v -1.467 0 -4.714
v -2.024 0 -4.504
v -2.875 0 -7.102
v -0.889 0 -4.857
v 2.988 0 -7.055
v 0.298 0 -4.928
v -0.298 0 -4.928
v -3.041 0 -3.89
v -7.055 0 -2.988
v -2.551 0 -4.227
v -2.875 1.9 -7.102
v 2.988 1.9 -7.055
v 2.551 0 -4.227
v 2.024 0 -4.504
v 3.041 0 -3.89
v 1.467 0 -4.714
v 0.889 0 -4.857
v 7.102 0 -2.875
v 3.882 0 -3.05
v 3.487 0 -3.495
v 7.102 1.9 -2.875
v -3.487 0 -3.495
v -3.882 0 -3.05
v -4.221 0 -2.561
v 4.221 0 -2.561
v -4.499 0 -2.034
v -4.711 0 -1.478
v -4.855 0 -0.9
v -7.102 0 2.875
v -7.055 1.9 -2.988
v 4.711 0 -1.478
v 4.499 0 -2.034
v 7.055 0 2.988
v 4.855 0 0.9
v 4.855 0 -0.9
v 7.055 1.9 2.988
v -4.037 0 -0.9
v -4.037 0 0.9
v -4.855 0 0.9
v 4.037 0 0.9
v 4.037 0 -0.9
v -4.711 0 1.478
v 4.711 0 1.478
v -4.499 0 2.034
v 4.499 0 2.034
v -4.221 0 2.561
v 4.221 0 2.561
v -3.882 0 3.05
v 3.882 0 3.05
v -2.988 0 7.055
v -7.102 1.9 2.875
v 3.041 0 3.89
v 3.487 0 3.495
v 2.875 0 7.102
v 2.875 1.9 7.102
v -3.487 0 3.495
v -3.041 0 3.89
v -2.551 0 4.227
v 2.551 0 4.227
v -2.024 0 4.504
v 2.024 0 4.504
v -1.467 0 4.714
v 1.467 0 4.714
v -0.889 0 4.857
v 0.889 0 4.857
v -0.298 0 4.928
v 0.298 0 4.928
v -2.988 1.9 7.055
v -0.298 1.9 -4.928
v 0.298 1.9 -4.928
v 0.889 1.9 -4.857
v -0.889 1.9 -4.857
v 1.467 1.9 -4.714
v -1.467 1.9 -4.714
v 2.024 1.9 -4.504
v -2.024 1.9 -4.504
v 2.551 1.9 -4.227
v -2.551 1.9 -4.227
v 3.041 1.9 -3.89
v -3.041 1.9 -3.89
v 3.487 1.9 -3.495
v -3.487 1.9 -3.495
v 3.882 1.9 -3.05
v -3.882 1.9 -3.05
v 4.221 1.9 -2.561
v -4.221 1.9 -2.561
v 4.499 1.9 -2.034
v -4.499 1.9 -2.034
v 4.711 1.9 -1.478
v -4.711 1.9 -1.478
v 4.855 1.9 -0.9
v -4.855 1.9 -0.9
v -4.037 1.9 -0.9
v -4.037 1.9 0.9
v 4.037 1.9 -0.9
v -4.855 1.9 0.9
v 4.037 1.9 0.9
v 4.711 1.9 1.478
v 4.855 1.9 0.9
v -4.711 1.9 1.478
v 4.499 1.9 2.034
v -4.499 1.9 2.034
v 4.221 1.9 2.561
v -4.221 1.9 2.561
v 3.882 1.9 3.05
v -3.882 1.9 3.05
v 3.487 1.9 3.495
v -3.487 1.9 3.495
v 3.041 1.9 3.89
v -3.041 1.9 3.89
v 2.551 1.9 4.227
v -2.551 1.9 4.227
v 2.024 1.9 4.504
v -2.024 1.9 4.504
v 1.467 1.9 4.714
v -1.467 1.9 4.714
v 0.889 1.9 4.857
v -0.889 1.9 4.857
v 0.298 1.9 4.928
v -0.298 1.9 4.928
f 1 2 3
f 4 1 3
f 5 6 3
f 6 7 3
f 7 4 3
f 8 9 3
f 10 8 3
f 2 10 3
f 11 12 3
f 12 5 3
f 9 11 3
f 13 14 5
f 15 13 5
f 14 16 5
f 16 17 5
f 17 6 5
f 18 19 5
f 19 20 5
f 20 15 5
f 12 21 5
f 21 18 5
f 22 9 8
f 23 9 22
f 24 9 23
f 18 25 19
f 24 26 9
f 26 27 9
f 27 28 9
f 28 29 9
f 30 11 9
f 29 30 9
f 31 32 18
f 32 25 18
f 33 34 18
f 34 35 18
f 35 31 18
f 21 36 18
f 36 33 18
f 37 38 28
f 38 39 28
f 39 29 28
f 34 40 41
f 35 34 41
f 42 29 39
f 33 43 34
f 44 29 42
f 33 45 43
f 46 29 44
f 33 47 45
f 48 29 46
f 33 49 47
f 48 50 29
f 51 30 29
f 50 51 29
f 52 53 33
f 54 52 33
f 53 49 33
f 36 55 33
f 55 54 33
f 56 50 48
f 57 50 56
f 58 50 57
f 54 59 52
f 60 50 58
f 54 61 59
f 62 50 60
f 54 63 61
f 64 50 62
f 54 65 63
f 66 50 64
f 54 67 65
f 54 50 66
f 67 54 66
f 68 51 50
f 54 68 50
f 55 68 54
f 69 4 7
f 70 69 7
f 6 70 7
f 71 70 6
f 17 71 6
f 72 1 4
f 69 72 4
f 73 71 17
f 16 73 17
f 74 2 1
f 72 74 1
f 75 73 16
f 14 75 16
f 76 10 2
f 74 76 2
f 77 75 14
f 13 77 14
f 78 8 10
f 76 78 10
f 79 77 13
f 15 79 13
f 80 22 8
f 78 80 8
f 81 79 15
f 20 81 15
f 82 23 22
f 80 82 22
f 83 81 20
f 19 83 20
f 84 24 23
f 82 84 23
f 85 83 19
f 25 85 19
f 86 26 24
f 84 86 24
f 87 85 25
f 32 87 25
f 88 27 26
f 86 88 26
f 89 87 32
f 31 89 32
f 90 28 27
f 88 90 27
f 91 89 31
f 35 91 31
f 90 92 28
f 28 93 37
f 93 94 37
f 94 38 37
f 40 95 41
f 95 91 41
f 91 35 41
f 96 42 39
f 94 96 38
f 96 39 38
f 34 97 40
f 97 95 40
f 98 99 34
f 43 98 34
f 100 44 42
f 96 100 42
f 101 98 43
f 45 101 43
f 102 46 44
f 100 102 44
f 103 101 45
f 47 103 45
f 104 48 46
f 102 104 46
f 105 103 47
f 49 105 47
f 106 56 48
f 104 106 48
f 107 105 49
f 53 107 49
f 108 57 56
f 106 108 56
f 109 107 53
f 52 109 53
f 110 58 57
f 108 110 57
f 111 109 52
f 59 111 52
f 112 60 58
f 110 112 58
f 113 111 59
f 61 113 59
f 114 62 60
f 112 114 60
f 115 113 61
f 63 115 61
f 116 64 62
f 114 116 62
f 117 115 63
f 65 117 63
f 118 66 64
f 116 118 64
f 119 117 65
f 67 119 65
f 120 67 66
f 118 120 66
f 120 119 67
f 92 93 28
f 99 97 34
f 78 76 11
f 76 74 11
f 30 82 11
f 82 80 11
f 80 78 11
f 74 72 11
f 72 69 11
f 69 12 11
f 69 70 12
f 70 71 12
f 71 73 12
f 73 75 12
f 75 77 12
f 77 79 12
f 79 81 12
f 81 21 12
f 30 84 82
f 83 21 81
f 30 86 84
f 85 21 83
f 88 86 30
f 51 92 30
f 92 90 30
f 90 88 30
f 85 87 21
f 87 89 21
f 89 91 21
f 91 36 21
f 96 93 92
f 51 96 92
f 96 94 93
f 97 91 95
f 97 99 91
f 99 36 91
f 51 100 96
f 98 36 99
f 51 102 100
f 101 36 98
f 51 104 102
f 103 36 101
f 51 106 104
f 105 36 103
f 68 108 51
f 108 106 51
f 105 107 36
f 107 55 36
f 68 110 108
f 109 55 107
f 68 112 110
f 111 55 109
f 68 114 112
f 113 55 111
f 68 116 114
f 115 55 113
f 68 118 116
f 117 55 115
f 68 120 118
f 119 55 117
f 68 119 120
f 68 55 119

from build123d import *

# Parameters (mm, degrees)
BOSS_EXTRUDE1_DEPTH = 1.9


with BuildPart() as part:
    # Sketch1 → Boss-Extrude1 (new body)
    with BuildSketch(Plane(origin=(0, 0, 0), x_dir=(1, 0, 0), z_dir=(0, 1, 0))):
        Polygon((2.875222959, -7.101510951), (7.054616202, -2.988436898), (7.101510951, 2.875222959), (2.988436898, 7.054616202), (-2.875222959, 7.101510951), (-7.054616202, 2.988436898), (-7.101510951, -2.875222959), (-2.988436898, -7.054616202), align=None)
        with BuildLine():
            Line((-4.854615023, 0.9), (-4.037336024, 0.9))
            Line((-4.037336024, 0.9), (-4.037336024, -0.9))
            Line((-4.037336024, -0.9), (-4.854615023, -0.9))
            ThreePointArc((-4.854615023, -0.9), (0, -4.937336024), (4.854615023, -0.9))
            Line((4.854615023, -0.9), (4.037336024, -0.9))
            Line((4.037336024, -0.9), (4.037336024, 0.9))
            Line((4.037336024, 0.9), (4.854615023, 0.9))
            ThreePointArc((4.854615023, 0.9), (0, 4.937336024), (-4.854615023, 0.9))
        make_face(mode=Mode.SUBTRACT)
    extrude(amount=BOSS_EXTRUDE1_DEPTH)


solid = part.part
